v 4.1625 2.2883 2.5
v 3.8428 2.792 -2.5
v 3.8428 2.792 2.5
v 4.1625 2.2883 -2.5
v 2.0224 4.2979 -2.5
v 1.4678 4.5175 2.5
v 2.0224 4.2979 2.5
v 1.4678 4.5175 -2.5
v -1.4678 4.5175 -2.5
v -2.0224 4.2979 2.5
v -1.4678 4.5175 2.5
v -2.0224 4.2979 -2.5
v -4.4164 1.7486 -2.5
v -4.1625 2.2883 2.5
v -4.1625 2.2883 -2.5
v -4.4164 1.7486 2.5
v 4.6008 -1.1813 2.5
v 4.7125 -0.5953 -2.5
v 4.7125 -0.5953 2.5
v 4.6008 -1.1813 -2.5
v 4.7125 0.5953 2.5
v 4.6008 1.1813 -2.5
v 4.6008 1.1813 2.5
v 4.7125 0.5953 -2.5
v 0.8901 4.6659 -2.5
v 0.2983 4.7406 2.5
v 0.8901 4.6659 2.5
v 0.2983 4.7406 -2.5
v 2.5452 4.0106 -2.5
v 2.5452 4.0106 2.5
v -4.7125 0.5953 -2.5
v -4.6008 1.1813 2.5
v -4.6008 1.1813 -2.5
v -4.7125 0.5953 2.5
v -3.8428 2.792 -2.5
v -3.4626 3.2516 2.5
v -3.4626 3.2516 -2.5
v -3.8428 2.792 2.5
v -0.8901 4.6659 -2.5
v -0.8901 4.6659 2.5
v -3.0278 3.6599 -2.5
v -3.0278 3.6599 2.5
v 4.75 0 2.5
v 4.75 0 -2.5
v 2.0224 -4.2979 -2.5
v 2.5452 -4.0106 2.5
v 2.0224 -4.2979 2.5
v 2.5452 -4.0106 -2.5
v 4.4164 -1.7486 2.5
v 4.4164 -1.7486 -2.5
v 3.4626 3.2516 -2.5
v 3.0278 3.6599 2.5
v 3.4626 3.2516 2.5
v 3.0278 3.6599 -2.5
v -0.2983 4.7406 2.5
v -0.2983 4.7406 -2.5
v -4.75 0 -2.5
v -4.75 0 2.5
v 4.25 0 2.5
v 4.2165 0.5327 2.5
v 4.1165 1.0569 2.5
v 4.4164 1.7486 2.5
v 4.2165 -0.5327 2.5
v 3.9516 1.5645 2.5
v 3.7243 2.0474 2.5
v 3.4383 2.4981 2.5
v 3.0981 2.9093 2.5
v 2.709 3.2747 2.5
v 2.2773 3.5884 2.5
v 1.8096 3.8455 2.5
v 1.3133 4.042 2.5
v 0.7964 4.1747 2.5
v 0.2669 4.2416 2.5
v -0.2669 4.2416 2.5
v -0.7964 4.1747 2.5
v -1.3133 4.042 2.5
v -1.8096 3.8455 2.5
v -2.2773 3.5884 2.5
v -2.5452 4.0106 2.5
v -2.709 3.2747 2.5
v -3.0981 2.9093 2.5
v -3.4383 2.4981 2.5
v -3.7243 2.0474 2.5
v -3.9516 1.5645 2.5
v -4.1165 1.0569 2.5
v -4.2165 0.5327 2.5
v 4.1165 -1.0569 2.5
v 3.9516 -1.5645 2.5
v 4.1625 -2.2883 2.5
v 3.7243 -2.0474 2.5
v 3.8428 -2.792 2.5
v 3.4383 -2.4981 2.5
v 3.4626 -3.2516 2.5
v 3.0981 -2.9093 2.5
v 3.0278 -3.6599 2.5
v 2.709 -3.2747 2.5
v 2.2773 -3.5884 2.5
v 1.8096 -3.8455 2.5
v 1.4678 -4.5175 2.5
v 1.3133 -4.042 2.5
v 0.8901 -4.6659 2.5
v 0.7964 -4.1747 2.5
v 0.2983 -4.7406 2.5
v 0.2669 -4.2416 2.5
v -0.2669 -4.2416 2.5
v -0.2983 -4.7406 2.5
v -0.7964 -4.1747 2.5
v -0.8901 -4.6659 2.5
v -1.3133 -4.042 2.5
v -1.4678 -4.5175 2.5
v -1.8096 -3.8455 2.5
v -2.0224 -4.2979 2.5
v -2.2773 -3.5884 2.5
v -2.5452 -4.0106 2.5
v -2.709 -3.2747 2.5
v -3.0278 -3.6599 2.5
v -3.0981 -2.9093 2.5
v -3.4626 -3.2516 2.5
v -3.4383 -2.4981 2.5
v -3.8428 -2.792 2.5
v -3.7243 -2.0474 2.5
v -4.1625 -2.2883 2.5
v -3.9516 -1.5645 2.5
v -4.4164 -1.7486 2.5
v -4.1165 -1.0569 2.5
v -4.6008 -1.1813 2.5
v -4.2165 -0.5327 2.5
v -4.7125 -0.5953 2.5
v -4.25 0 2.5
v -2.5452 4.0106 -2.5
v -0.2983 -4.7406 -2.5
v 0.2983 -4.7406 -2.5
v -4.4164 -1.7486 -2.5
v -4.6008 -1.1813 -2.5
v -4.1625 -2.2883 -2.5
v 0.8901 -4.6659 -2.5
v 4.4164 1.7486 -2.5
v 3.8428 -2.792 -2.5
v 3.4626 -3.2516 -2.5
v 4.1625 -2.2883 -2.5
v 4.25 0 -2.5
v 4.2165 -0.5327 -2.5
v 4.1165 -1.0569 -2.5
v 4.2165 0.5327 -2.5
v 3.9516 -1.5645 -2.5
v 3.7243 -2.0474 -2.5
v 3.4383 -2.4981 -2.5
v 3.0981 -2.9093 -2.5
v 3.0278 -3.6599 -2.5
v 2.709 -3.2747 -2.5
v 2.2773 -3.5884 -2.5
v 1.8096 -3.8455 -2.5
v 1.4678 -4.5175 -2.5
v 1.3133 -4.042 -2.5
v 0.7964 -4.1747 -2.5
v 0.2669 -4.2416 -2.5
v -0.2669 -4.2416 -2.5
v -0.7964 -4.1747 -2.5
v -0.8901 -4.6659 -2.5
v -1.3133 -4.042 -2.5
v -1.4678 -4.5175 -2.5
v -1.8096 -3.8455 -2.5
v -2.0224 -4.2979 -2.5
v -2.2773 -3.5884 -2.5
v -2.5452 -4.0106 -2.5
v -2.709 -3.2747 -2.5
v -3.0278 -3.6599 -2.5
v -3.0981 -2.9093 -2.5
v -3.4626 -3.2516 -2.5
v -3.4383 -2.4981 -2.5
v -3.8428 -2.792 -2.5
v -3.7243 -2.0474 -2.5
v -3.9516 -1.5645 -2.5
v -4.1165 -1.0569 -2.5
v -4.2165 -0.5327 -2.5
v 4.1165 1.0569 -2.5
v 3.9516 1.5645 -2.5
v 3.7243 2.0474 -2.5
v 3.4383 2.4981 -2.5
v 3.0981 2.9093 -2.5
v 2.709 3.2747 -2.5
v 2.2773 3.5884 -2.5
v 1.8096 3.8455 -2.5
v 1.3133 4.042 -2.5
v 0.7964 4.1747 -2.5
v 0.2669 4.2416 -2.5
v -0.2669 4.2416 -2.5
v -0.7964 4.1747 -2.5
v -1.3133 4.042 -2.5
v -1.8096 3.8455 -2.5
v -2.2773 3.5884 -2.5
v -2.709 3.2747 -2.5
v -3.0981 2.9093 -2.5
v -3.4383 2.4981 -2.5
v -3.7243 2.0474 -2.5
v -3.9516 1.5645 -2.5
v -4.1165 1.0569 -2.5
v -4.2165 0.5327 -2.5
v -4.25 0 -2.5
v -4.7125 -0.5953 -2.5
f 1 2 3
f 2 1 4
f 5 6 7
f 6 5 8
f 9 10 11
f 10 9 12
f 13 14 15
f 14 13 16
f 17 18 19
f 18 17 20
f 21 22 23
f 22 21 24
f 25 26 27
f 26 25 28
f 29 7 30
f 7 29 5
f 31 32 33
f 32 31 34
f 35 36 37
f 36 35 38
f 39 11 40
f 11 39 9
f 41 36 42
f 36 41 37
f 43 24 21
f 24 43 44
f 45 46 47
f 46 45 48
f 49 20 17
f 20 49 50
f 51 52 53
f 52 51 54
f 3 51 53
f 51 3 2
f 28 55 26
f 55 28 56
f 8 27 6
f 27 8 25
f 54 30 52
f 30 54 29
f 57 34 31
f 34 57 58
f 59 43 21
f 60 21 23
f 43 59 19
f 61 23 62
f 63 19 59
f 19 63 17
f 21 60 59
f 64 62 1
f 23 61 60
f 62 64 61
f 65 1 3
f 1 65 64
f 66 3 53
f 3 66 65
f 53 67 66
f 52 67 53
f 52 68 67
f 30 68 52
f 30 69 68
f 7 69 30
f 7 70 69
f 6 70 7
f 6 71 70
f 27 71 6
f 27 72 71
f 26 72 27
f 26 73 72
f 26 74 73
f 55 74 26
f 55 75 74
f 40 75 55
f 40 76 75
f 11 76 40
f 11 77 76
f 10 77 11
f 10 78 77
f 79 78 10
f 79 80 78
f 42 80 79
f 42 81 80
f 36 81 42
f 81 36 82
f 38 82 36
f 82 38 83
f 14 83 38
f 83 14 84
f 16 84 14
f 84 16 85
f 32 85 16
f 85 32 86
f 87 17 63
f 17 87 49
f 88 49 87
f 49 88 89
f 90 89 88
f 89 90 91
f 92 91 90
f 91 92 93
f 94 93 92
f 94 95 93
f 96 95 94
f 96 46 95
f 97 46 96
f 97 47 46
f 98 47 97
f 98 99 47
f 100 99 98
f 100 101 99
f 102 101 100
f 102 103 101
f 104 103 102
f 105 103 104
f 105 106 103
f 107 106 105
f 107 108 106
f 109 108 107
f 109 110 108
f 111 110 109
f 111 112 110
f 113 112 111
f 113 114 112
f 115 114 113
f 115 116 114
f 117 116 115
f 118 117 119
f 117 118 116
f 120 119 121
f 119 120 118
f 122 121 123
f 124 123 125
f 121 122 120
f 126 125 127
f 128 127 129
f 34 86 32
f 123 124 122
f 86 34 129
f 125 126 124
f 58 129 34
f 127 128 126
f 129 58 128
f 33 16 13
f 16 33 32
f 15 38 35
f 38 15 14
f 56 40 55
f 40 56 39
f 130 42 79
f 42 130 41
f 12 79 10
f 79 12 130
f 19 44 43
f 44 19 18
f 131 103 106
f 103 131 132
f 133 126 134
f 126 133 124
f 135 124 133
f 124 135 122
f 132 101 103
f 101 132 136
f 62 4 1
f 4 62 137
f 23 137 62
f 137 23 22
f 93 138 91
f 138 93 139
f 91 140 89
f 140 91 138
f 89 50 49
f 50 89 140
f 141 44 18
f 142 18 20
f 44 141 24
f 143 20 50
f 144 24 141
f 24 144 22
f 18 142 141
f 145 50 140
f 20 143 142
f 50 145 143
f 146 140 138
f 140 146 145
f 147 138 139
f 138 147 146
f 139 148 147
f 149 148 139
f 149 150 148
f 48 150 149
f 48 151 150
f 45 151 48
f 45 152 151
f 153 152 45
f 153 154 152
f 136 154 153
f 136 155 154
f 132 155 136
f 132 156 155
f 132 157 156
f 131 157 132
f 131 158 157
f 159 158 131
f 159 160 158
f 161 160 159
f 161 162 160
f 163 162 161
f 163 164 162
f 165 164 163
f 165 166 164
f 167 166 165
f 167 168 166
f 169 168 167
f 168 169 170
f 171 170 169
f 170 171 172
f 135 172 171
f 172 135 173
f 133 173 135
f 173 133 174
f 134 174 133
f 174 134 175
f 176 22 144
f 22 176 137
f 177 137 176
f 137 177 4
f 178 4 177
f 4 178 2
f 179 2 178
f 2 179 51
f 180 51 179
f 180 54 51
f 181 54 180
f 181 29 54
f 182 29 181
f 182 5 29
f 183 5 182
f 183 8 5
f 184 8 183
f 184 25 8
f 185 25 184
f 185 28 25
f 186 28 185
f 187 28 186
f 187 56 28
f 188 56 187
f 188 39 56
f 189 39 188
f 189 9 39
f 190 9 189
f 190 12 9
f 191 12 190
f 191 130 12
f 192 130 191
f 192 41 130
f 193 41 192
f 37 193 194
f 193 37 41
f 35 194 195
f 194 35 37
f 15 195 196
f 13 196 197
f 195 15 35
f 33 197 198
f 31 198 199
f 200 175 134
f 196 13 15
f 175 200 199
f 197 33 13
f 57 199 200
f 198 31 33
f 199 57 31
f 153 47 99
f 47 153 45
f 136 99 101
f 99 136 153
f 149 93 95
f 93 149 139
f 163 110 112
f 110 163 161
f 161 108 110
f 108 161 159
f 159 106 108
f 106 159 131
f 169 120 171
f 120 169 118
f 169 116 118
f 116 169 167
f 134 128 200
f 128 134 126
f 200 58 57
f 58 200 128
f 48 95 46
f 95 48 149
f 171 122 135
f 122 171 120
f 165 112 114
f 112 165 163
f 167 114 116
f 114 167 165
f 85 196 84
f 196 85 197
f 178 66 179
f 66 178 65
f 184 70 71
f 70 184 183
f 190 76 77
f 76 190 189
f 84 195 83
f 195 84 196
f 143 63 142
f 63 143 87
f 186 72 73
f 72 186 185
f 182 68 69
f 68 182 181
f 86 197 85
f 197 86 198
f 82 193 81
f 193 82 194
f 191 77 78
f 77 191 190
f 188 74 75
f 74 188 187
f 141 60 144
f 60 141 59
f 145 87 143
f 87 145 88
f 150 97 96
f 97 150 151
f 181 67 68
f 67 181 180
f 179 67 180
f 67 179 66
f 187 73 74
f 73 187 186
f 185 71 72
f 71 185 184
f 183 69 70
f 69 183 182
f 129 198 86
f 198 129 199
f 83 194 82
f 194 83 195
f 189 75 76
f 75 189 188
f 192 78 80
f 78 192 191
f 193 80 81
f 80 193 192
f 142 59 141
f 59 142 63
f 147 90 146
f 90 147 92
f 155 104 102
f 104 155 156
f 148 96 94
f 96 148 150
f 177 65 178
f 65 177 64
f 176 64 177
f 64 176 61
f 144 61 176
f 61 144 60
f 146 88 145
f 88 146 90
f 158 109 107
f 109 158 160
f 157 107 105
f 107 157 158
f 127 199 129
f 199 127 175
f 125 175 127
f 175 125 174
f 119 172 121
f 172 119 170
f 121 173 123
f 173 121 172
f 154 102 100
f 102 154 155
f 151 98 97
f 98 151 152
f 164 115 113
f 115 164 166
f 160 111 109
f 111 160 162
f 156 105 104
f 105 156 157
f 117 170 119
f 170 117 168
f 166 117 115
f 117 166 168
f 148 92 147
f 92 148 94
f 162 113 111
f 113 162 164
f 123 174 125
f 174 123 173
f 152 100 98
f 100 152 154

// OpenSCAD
$fn = 50;


difference() {
	union() {
		translate(v = [0, 0, -2.5000000000]) {
			cylinder(h = 5, r = 4.7500000000);
		}
	}
	union() {
		translate(v = [0, 0, -100.0000000000]) {
			cylinder(h = 200, r = 4.2500000000);
		}
	}
}
